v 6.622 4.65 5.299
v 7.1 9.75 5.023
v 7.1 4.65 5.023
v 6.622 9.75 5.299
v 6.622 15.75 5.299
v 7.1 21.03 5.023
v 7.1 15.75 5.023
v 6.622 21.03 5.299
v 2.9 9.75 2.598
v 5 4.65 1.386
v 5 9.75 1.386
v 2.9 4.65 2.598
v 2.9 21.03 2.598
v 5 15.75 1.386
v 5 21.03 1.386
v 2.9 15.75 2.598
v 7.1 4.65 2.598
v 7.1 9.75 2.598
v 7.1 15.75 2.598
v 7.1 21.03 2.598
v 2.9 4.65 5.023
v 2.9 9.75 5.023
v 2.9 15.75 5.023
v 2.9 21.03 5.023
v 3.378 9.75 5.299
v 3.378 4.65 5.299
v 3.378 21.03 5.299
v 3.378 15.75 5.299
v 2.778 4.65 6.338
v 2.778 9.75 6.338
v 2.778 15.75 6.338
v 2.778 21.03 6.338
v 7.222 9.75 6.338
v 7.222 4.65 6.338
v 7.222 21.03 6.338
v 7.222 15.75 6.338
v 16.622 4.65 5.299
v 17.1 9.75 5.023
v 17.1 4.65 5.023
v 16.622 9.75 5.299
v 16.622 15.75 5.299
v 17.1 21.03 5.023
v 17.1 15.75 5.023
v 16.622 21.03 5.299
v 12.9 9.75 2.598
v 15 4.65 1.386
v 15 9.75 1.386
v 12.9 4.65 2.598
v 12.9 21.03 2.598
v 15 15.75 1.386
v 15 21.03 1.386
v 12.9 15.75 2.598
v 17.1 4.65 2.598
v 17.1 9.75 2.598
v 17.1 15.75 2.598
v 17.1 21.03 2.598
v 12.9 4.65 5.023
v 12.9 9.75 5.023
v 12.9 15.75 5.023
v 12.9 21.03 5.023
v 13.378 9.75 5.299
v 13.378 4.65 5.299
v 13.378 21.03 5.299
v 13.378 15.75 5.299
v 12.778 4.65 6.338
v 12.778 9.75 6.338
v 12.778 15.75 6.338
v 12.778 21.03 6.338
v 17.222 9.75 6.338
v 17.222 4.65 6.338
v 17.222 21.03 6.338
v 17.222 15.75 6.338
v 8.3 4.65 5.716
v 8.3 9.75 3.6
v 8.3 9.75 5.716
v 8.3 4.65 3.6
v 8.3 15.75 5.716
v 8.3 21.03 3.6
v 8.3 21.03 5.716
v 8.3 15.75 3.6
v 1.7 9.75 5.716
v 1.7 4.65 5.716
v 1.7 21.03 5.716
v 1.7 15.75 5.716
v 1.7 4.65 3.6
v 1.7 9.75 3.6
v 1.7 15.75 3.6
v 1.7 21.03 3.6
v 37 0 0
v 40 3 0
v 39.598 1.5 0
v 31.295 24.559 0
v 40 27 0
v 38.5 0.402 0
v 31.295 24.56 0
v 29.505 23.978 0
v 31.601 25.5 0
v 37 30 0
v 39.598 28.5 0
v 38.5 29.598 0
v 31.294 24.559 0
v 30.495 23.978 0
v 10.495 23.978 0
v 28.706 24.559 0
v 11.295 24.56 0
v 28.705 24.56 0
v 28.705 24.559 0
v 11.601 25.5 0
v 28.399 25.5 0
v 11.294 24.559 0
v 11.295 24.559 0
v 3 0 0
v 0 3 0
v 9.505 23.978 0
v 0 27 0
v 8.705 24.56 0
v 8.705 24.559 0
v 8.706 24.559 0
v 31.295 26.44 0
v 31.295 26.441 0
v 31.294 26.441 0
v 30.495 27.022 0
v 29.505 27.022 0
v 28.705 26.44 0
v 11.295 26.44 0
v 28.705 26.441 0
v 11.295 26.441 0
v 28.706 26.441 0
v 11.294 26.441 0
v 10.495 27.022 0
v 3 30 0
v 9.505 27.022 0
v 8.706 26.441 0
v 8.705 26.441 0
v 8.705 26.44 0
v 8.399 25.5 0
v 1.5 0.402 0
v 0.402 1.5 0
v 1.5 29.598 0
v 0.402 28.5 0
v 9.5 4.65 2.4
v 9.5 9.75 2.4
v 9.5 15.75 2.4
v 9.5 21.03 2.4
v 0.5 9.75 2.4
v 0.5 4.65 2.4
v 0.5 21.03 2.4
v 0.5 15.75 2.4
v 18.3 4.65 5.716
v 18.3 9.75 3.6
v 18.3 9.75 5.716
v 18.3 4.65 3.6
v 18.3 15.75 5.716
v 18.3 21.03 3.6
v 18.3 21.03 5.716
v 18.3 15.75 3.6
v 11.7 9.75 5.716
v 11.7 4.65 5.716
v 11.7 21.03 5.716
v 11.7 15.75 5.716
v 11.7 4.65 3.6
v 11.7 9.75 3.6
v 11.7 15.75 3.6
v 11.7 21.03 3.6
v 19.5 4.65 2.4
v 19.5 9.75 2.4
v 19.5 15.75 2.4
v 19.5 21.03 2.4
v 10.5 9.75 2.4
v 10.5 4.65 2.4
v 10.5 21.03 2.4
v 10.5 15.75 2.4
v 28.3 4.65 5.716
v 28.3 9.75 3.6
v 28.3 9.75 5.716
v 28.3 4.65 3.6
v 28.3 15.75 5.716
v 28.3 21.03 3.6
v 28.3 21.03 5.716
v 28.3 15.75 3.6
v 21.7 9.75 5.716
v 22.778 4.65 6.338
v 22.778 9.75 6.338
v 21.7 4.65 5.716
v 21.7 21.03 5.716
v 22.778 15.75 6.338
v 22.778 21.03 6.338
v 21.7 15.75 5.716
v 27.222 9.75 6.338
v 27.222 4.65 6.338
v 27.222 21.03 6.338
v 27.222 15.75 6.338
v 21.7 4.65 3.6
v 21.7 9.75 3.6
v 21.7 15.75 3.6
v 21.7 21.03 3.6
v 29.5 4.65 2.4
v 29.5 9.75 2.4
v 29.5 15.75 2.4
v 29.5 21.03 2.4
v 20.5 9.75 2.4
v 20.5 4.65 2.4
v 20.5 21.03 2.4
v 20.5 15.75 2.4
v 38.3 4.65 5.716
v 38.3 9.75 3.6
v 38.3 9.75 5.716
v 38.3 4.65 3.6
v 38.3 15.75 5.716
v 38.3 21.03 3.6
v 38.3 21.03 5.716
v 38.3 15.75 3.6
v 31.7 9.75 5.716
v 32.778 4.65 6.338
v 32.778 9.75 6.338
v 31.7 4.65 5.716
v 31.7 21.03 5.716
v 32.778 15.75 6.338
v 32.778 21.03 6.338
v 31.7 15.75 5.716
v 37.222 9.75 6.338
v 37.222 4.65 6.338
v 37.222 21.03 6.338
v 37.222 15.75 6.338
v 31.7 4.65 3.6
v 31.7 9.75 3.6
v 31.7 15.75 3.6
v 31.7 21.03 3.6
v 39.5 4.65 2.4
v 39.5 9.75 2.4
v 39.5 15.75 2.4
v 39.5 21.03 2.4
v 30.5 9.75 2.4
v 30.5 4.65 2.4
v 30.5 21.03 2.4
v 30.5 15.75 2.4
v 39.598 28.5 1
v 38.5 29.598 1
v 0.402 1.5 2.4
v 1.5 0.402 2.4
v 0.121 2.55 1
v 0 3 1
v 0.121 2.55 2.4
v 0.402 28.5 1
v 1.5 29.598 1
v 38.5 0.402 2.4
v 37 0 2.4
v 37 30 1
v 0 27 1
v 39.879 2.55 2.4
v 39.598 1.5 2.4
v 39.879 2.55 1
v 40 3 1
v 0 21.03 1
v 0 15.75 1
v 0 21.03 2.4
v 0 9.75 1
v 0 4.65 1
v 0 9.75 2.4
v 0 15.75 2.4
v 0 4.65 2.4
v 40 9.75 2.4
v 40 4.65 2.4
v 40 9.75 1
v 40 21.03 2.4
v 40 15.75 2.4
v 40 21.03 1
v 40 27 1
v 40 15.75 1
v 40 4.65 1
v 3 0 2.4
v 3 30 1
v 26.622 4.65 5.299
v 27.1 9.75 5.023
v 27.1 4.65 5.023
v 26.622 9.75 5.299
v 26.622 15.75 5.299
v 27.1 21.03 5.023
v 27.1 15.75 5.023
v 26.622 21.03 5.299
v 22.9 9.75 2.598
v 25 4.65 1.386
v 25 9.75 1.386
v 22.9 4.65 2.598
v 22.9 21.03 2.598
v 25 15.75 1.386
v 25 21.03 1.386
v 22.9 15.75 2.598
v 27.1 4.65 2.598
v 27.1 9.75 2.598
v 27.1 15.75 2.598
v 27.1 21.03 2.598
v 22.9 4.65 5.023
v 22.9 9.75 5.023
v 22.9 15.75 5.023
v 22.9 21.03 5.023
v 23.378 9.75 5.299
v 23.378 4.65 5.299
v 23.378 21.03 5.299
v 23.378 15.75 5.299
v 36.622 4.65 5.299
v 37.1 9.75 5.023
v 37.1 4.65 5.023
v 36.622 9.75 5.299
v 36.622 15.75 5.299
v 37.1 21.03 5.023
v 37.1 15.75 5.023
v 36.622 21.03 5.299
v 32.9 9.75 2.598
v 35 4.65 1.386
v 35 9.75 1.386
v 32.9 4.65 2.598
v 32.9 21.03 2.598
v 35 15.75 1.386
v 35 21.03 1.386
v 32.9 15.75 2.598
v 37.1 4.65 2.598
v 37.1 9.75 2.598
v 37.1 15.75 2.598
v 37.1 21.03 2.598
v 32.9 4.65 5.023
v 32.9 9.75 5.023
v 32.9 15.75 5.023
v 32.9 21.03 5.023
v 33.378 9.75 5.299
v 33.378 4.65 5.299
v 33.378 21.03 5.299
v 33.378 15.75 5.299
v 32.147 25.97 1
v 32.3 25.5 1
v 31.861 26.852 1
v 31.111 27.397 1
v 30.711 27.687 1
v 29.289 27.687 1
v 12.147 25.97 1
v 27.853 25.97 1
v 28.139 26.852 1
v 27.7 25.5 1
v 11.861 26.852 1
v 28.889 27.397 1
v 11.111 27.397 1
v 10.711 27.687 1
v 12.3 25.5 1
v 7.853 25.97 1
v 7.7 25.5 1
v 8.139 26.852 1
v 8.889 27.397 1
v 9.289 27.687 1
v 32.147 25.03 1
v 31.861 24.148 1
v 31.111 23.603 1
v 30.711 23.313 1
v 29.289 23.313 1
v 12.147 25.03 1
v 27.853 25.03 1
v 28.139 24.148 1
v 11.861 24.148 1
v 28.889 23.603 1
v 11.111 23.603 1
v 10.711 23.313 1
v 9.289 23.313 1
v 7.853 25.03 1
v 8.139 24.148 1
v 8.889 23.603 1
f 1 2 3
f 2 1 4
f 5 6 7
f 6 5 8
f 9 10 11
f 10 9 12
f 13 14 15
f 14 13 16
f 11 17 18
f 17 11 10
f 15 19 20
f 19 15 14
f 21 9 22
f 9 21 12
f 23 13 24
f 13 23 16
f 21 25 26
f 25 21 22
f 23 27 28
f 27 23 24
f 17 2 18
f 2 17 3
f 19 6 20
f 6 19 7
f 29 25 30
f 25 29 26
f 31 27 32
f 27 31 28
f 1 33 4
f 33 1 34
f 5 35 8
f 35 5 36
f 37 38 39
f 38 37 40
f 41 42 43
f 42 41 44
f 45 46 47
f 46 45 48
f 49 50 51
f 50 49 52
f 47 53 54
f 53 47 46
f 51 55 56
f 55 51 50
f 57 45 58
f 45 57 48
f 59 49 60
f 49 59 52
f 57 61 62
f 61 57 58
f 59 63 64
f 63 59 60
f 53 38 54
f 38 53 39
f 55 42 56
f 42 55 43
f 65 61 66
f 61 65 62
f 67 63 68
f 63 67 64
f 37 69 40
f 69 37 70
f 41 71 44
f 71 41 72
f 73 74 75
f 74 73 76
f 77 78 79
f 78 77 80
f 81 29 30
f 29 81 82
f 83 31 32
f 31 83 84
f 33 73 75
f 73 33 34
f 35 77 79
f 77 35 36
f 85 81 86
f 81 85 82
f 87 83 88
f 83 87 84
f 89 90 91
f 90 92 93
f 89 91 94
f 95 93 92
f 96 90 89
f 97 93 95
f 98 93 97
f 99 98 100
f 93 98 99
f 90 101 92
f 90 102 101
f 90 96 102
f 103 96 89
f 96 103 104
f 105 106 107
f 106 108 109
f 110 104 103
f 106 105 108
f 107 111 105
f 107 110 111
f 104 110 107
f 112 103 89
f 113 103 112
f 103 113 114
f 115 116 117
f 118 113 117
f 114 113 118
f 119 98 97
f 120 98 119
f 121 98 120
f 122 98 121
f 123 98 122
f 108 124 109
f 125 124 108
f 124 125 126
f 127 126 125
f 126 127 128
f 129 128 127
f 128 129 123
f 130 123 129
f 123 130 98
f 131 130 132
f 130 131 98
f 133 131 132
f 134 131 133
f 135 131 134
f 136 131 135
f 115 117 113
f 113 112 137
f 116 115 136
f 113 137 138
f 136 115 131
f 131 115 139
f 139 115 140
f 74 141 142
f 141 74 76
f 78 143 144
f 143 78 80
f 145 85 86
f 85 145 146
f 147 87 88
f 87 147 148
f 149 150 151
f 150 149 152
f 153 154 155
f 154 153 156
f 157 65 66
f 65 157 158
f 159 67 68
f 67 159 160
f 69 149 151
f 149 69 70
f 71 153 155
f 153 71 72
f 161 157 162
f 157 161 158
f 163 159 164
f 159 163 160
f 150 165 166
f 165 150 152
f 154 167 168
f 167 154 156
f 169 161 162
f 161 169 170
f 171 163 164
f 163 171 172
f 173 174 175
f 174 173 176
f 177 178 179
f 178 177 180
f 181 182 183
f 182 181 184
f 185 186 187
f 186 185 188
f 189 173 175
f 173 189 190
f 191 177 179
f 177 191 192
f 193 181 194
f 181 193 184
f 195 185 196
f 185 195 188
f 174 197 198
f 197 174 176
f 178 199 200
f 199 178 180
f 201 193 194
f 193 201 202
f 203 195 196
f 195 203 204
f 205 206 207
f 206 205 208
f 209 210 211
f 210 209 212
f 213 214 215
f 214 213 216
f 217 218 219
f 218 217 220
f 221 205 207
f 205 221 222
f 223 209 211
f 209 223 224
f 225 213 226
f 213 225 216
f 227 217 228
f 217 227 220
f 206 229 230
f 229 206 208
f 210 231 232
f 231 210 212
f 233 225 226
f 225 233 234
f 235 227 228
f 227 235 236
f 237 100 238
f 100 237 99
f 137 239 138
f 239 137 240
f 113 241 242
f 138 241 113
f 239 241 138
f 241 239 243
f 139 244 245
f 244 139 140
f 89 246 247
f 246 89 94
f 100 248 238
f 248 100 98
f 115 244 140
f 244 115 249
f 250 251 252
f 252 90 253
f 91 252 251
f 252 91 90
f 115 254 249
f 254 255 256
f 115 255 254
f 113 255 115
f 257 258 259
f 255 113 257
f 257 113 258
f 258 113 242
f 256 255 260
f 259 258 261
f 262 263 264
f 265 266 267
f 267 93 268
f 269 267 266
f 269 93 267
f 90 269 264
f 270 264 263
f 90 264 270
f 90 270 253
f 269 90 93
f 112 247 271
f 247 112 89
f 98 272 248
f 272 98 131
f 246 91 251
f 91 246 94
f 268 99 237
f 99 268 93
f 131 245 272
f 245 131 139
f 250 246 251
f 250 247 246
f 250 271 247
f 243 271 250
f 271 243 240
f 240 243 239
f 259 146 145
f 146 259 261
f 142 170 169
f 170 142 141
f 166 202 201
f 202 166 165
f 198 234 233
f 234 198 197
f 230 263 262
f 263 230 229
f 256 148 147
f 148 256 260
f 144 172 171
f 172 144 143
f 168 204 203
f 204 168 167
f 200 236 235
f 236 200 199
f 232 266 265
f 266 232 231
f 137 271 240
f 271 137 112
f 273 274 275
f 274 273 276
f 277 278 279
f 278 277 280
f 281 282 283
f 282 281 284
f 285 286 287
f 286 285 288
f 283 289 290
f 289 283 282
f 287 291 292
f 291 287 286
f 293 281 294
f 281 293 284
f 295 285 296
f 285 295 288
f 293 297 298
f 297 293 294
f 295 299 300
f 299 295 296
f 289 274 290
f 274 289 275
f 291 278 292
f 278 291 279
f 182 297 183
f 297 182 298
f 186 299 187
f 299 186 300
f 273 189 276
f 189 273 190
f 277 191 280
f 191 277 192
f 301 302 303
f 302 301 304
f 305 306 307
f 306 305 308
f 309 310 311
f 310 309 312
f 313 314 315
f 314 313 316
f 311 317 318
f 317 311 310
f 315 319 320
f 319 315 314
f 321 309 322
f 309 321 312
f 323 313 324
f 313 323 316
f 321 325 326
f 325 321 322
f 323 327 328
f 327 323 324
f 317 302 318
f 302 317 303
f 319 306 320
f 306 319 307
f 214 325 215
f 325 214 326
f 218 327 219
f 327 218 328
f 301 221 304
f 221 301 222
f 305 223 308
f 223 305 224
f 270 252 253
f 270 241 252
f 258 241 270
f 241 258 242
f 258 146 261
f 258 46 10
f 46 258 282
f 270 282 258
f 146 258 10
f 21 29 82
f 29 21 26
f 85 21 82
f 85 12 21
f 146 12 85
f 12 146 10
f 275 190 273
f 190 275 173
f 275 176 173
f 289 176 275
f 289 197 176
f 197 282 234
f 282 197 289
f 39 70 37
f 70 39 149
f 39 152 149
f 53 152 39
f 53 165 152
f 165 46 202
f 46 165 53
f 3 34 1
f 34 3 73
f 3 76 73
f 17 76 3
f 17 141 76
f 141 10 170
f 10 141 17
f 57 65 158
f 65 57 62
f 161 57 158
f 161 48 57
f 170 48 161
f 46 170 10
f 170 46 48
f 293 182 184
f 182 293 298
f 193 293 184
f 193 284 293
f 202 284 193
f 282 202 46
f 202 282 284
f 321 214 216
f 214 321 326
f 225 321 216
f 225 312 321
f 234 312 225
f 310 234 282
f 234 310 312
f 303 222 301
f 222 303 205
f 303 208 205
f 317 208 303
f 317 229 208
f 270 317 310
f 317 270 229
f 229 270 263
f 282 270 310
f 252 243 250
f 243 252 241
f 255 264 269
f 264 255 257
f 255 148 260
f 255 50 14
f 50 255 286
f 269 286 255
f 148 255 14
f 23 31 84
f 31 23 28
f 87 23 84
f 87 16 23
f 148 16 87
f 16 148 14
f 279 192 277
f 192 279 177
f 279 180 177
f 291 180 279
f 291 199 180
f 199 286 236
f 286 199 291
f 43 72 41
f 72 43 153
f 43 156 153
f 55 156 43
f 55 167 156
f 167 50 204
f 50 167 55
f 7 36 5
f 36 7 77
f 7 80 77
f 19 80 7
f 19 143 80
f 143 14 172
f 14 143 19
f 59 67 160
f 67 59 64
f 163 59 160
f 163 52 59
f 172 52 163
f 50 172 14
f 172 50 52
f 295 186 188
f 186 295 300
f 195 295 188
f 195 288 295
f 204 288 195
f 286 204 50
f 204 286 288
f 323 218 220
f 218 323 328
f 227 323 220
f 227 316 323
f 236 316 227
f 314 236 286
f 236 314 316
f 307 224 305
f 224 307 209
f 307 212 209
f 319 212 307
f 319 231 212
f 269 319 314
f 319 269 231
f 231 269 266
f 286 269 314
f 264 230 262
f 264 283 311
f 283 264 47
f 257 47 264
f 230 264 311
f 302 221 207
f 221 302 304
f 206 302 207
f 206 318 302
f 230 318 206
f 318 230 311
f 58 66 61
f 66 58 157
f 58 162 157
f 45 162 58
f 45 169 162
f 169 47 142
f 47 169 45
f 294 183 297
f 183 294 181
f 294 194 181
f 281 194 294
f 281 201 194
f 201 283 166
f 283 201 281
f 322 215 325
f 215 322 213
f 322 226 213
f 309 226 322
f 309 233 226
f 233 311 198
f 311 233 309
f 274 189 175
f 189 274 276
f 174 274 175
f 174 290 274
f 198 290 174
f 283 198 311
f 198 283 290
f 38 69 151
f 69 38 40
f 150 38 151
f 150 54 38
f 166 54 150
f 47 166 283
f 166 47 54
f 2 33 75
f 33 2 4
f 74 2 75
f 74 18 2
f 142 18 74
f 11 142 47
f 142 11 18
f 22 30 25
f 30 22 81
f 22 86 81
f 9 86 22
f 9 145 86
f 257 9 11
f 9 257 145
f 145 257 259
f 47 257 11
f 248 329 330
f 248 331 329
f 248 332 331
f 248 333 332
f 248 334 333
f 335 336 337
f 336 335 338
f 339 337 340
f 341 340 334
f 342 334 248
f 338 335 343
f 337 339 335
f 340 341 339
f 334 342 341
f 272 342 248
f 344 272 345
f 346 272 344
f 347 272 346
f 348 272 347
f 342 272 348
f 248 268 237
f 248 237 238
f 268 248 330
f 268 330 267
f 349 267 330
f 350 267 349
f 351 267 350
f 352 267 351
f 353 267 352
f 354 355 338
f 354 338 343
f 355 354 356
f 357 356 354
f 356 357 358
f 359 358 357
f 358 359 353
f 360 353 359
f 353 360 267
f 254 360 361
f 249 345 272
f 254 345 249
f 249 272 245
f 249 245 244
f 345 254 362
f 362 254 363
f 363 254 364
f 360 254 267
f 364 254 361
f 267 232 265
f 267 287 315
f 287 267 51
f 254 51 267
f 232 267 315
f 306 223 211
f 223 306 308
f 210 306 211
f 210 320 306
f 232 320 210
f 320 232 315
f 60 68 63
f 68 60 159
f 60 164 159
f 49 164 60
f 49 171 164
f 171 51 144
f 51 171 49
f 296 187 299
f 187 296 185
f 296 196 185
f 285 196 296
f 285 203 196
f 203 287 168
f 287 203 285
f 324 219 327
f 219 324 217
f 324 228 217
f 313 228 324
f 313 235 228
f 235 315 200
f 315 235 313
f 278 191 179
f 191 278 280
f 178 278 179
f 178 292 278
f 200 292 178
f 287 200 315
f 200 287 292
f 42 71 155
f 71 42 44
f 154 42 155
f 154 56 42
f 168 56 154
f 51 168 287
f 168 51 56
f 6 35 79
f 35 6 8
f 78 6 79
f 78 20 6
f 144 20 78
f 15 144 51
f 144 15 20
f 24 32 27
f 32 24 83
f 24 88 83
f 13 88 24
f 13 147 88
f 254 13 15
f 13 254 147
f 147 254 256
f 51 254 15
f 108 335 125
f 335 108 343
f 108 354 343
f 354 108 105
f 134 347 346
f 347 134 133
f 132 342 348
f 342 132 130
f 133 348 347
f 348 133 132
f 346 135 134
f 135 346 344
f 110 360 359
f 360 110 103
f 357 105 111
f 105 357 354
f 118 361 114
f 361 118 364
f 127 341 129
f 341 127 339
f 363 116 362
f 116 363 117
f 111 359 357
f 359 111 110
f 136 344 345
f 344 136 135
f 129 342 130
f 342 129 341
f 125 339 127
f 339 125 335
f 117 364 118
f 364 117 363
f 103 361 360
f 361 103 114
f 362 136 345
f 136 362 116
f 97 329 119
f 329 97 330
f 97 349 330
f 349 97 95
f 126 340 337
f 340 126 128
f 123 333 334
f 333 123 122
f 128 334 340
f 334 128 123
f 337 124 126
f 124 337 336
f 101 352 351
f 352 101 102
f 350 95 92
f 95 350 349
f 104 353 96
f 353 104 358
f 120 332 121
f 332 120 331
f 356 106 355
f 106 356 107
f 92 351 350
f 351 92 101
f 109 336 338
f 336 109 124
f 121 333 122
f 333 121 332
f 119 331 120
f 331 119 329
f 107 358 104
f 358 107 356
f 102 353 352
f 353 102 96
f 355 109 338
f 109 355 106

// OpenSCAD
e=.001;
d = 3.8+0.4;
b = 1.2;
l= 30;
base_height = .8;
base_edge=2.4;

n_bits = 4;
pitch = 10;
corner = 3;
base_w = pitch*n_bits;
base_d = l;

module hexbar(d, l)
{
	rotate([-90,30,0])
	cylinder(h=l, r=d/sqrt(3), $fn=6);
}


module clamp(d, l)
{
	intersection()
	{
		union()
		{
			translate([0,-e,(d+2*b)/sqrt(3)])
			hexbar(d+b*2, l+2*e);
			translate([-(d+b*2)/2,-e,-e])
			cube([d+b*2, l+2*e, (d+b*2)/2+e]);
		}
		translate([-(d+b*2)/2-e-sqrt(2)*b/2,0,0])
		{
			cube([d+b*2+2*e+sqrt(2)*b, l, (d+b*2)]);
		}
	}

for (x=[1, -1])
translate([x*(d+b*2)/2,l/2, base_edge])
rotate([0, 45,0])
cube([sqrt(2)*b,l, sqrt(2)*b], center=true); 
}

module clamp_keepout(d, l)
{
	translate([0,-e,(d+2*b)/sqrt(3)])
	{
		hexbar(d, l+2*e);

		translate([0,0,(d+b/2)*.6])
		rotate([0,30,0])
		hexbar(d, l+2*e);
	}
}

difference()
{
	union()
	{
		for (i=[0:n_bits-1])
		translate([pitch*(i+.5), corner, 0])
		clamp(d, l-2*e-2*corner);
		linear_extrude(base_edge)
		hull()
		for (p = [ [corner,corner], [base_w-corner, corner],
		           [corner, base_d-corner], [base_w-corner, base_d-corner] ])
		translate(p)
		circle(corner, $fn=12);
	}
	union()
	{
		for (i=[0:n_bits-1])
		translate([pitch*(i+.5), corner, 0])
		clamp_keepout(d, l);

		for (yw=[ [.12, .07], [.425,.2], [.9+e,.4]])
		{
			y=l*yw[0]; w=l*yw[1];
			translate([0-e,y-w/2,1])
			cube([base_w+2*e, w, d+2*b]);
		}
		for (p = [ [pitch, l*.85,-e], [base_w-pitch, l*.85, -e] ])
		translate(p)
		cylinder(h=2+2*e, r2=6/2, r1=3.2/2);
	}
}
